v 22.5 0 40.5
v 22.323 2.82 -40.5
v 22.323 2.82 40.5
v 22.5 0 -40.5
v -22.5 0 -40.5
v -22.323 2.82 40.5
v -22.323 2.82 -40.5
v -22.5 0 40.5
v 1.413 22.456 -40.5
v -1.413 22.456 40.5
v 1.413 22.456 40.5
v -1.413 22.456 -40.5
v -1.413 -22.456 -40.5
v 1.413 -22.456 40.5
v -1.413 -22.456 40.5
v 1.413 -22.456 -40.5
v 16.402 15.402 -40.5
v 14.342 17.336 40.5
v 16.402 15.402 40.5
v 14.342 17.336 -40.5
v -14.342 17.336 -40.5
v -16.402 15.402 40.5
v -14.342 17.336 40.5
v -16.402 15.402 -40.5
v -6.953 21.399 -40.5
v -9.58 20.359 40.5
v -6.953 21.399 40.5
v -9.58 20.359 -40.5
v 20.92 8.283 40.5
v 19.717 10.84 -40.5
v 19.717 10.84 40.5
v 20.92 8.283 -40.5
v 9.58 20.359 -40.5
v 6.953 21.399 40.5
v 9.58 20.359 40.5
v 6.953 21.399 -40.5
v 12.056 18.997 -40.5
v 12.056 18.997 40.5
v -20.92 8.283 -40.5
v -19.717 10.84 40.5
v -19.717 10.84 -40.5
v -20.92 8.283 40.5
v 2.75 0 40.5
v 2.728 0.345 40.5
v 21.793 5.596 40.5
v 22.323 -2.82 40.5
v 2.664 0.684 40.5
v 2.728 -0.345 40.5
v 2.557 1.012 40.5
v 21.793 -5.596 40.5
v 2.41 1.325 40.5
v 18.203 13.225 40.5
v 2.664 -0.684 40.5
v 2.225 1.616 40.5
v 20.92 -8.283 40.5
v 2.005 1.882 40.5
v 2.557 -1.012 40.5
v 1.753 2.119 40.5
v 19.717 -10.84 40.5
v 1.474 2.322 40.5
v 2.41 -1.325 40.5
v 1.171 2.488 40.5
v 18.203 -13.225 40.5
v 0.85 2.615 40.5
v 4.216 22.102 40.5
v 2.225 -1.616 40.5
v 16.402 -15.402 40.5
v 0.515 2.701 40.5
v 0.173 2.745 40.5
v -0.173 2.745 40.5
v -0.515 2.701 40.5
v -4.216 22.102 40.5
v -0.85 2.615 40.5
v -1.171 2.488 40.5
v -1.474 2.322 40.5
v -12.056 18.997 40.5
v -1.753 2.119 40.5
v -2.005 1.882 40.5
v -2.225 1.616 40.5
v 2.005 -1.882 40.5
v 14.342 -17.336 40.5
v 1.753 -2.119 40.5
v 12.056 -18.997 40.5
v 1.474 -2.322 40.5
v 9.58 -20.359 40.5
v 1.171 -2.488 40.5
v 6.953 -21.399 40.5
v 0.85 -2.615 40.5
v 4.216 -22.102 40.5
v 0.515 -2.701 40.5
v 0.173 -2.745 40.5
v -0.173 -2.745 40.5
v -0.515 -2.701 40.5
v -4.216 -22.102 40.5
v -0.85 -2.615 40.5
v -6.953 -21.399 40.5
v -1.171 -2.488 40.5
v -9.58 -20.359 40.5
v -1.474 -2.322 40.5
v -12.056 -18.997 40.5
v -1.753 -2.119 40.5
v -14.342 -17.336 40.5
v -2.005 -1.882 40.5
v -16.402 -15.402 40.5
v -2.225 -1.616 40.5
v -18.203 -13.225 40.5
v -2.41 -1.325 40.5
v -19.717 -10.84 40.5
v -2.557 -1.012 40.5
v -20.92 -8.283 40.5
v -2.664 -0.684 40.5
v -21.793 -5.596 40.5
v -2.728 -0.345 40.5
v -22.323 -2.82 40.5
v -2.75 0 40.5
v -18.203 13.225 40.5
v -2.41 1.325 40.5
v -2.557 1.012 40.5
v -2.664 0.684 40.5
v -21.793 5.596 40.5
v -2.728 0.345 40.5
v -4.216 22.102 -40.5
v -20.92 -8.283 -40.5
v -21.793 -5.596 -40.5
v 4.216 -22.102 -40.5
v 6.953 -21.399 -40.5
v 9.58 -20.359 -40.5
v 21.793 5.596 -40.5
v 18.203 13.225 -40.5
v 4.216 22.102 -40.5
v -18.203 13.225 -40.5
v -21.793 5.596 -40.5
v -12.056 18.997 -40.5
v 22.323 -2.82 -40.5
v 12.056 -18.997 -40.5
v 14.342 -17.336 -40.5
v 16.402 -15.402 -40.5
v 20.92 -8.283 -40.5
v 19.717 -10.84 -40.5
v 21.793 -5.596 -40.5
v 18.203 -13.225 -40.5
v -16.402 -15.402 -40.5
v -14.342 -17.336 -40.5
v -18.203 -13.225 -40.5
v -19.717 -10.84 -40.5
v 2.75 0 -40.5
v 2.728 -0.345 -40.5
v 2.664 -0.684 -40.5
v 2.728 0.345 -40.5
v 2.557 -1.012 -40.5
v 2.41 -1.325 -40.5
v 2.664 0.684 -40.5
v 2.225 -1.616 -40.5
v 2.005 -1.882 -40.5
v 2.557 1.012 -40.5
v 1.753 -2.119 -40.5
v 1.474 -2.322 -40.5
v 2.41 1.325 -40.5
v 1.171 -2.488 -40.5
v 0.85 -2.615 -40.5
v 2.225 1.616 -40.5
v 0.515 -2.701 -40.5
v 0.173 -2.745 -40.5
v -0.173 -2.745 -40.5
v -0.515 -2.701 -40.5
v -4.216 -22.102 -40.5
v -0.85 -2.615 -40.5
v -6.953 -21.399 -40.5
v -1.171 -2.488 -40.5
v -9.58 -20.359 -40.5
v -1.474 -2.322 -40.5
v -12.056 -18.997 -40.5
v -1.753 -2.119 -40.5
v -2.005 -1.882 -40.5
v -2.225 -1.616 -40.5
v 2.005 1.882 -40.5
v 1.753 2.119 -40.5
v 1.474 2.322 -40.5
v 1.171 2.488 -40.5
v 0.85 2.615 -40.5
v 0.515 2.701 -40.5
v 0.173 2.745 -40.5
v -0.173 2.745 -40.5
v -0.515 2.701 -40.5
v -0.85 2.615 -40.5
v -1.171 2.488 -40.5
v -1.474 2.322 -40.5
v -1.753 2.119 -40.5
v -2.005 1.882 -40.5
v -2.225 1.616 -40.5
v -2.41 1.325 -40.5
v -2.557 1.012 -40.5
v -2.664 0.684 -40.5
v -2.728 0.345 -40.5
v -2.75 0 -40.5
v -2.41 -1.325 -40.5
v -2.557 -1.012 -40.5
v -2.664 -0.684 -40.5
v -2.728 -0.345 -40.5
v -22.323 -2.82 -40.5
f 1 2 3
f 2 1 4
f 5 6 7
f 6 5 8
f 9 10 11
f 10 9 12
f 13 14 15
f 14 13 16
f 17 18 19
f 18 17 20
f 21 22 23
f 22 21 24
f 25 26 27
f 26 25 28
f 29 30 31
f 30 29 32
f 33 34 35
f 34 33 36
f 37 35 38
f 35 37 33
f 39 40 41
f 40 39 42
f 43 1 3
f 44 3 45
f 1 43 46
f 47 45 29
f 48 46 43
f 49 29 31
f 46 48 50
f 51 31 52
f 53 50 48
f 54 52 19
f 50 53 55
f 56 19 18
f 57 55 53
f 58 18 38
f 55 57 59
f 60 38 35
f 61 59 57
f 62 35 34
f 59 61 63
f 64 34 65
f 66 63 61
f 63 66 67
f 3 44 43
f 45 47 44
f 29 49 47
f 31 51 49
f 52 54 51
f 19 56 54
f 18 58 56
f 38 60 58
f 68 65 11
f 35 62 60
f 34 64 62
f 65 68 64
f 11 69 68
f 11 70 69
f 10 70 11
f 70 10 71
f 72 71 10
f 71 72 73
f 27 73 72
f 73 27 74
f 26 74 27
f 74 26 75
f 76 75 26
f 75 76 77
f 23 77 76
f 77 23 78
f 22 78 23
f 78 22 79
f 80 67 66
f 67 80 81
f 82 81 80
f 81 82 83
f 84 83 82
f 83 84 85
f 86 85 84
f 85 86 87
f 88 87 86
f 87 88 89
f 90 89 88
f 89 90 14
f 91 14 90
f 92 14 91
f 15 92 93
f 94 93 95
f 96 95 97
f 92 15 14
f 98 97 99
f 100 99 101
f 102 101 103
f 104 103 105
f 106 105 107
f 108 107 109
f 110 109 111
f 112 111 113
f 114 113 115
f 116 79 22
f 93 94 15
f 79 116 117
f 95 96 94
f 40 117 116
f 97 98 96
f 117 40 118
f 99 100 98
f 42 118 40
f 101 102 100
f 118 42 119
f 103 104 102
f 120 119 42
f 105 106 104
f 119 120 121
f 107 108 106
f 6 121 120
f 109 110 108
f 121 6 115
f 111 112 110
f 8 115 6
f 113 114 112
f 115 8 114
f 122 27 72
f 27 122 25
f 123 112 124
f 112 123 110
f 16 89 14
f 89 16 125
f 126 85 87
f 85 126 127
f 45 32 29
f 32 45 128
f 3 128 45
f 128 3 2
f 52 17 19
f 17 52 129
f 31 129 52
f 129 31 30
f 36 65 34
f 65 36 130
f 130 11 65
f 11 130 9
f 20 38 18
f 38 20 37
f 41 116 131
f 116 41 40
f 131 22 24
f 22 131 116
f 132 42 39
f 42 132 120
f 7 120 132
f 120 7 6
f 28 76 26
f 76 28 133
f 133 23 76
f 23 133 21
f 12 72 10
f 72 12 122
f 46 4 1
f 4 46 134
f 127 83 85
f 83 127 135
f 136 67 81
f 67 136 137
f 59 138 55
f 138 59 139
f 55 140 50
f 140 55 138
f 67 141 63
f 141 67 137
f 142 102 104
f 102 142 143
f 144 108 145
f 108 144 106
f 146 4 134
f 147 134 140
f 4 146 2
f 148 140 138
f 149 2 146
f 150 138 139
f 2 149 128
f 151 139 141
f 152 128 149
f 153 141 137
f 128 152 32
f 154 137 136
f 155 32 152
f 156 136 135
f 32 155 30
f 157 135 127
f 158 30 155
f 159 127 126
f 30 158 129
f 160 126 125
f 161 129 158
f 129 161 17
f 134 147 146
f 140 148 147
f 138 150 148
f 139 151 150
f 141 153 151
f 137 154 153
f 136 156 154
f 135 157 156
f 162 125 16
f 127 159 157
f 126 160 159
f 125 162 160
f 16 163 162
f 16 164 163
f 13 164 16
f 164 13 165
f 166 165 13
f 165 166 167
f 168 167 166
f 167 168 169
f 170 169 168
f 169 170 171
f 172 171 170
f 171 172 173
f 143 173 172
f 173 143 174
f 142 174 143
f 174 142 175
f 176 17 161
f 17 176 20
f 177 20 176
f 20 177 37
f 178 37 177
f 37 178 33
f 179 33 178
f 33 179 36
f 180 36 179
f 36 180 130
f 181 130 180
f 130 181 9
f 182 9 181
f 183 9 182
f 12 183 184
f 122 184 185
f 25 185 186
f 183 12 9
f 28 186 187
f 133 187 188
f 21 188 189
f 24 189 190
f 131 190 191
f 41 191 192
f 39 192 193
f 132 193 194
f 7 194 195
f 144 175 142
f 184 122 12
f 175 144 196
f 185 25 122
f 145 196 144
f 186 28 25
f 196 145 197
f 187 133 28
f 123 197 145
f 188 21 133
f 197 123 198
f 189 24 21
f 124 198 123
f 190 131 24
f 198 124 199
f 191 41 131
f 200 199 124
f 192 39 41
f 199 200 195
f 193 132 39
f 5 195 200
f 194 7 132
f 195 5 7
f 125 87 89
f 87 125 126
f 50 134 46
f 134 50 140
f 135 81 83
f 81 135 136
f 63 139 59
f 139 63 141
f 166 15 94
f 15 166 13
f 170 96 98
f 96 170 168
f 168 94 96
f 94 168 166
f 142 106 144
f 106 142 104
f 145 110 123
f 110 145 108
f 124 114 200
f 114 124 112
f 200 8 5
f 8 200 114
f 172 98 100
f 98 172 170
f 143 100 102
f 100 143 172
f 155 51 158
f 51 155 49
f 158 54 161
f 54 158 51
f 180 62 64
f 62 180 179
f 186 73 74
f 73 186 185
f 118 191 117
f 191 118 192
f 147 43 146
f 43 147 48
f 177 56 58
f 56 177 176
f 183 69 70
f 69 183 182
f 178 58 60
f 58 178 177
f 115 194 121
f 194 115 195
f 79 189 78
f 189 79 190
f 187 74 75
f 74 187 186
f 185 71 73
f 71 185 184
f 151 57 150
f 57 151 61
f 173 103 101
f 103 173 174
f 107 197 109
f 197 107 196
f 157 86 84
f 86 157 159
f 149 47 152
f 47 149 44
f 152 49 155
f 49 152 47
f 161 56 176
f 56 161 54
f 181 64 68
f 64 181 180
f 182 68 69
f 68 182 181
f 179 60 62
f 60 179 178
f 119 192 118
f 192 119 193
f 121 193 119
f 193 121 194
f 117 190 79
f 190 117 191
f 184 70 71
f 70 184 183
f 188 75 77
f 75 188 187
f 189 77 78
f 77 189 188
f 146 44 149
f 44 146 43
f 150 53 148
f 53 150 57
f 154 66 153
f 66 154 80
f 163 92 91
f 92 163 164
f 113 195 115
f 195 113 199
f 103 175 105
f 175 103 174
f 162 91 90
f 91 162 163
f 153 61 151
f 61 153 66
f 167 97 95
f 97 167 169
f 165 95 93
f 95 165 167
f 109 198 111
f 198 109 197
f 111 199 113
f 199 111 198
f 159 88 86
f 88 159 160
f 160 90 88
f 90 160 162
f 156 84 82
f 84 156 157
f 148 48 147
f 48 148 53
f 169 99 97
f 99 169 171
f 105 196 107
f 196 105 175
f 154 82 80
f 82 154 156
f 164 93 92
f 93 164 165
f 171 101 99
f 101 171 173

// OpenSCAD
$fn = 50;


difference() {
	union() {
		translate(v = [0, 0, -40.5000000000]) {
			cylinder(h = 81, r = 22.5000000000);
		}
	}
	union() {
		translate(v = [0, 0, -100.0000000000]) {
			cylinder(h = 200, r = 2.7500000000);
		}
	}
}
